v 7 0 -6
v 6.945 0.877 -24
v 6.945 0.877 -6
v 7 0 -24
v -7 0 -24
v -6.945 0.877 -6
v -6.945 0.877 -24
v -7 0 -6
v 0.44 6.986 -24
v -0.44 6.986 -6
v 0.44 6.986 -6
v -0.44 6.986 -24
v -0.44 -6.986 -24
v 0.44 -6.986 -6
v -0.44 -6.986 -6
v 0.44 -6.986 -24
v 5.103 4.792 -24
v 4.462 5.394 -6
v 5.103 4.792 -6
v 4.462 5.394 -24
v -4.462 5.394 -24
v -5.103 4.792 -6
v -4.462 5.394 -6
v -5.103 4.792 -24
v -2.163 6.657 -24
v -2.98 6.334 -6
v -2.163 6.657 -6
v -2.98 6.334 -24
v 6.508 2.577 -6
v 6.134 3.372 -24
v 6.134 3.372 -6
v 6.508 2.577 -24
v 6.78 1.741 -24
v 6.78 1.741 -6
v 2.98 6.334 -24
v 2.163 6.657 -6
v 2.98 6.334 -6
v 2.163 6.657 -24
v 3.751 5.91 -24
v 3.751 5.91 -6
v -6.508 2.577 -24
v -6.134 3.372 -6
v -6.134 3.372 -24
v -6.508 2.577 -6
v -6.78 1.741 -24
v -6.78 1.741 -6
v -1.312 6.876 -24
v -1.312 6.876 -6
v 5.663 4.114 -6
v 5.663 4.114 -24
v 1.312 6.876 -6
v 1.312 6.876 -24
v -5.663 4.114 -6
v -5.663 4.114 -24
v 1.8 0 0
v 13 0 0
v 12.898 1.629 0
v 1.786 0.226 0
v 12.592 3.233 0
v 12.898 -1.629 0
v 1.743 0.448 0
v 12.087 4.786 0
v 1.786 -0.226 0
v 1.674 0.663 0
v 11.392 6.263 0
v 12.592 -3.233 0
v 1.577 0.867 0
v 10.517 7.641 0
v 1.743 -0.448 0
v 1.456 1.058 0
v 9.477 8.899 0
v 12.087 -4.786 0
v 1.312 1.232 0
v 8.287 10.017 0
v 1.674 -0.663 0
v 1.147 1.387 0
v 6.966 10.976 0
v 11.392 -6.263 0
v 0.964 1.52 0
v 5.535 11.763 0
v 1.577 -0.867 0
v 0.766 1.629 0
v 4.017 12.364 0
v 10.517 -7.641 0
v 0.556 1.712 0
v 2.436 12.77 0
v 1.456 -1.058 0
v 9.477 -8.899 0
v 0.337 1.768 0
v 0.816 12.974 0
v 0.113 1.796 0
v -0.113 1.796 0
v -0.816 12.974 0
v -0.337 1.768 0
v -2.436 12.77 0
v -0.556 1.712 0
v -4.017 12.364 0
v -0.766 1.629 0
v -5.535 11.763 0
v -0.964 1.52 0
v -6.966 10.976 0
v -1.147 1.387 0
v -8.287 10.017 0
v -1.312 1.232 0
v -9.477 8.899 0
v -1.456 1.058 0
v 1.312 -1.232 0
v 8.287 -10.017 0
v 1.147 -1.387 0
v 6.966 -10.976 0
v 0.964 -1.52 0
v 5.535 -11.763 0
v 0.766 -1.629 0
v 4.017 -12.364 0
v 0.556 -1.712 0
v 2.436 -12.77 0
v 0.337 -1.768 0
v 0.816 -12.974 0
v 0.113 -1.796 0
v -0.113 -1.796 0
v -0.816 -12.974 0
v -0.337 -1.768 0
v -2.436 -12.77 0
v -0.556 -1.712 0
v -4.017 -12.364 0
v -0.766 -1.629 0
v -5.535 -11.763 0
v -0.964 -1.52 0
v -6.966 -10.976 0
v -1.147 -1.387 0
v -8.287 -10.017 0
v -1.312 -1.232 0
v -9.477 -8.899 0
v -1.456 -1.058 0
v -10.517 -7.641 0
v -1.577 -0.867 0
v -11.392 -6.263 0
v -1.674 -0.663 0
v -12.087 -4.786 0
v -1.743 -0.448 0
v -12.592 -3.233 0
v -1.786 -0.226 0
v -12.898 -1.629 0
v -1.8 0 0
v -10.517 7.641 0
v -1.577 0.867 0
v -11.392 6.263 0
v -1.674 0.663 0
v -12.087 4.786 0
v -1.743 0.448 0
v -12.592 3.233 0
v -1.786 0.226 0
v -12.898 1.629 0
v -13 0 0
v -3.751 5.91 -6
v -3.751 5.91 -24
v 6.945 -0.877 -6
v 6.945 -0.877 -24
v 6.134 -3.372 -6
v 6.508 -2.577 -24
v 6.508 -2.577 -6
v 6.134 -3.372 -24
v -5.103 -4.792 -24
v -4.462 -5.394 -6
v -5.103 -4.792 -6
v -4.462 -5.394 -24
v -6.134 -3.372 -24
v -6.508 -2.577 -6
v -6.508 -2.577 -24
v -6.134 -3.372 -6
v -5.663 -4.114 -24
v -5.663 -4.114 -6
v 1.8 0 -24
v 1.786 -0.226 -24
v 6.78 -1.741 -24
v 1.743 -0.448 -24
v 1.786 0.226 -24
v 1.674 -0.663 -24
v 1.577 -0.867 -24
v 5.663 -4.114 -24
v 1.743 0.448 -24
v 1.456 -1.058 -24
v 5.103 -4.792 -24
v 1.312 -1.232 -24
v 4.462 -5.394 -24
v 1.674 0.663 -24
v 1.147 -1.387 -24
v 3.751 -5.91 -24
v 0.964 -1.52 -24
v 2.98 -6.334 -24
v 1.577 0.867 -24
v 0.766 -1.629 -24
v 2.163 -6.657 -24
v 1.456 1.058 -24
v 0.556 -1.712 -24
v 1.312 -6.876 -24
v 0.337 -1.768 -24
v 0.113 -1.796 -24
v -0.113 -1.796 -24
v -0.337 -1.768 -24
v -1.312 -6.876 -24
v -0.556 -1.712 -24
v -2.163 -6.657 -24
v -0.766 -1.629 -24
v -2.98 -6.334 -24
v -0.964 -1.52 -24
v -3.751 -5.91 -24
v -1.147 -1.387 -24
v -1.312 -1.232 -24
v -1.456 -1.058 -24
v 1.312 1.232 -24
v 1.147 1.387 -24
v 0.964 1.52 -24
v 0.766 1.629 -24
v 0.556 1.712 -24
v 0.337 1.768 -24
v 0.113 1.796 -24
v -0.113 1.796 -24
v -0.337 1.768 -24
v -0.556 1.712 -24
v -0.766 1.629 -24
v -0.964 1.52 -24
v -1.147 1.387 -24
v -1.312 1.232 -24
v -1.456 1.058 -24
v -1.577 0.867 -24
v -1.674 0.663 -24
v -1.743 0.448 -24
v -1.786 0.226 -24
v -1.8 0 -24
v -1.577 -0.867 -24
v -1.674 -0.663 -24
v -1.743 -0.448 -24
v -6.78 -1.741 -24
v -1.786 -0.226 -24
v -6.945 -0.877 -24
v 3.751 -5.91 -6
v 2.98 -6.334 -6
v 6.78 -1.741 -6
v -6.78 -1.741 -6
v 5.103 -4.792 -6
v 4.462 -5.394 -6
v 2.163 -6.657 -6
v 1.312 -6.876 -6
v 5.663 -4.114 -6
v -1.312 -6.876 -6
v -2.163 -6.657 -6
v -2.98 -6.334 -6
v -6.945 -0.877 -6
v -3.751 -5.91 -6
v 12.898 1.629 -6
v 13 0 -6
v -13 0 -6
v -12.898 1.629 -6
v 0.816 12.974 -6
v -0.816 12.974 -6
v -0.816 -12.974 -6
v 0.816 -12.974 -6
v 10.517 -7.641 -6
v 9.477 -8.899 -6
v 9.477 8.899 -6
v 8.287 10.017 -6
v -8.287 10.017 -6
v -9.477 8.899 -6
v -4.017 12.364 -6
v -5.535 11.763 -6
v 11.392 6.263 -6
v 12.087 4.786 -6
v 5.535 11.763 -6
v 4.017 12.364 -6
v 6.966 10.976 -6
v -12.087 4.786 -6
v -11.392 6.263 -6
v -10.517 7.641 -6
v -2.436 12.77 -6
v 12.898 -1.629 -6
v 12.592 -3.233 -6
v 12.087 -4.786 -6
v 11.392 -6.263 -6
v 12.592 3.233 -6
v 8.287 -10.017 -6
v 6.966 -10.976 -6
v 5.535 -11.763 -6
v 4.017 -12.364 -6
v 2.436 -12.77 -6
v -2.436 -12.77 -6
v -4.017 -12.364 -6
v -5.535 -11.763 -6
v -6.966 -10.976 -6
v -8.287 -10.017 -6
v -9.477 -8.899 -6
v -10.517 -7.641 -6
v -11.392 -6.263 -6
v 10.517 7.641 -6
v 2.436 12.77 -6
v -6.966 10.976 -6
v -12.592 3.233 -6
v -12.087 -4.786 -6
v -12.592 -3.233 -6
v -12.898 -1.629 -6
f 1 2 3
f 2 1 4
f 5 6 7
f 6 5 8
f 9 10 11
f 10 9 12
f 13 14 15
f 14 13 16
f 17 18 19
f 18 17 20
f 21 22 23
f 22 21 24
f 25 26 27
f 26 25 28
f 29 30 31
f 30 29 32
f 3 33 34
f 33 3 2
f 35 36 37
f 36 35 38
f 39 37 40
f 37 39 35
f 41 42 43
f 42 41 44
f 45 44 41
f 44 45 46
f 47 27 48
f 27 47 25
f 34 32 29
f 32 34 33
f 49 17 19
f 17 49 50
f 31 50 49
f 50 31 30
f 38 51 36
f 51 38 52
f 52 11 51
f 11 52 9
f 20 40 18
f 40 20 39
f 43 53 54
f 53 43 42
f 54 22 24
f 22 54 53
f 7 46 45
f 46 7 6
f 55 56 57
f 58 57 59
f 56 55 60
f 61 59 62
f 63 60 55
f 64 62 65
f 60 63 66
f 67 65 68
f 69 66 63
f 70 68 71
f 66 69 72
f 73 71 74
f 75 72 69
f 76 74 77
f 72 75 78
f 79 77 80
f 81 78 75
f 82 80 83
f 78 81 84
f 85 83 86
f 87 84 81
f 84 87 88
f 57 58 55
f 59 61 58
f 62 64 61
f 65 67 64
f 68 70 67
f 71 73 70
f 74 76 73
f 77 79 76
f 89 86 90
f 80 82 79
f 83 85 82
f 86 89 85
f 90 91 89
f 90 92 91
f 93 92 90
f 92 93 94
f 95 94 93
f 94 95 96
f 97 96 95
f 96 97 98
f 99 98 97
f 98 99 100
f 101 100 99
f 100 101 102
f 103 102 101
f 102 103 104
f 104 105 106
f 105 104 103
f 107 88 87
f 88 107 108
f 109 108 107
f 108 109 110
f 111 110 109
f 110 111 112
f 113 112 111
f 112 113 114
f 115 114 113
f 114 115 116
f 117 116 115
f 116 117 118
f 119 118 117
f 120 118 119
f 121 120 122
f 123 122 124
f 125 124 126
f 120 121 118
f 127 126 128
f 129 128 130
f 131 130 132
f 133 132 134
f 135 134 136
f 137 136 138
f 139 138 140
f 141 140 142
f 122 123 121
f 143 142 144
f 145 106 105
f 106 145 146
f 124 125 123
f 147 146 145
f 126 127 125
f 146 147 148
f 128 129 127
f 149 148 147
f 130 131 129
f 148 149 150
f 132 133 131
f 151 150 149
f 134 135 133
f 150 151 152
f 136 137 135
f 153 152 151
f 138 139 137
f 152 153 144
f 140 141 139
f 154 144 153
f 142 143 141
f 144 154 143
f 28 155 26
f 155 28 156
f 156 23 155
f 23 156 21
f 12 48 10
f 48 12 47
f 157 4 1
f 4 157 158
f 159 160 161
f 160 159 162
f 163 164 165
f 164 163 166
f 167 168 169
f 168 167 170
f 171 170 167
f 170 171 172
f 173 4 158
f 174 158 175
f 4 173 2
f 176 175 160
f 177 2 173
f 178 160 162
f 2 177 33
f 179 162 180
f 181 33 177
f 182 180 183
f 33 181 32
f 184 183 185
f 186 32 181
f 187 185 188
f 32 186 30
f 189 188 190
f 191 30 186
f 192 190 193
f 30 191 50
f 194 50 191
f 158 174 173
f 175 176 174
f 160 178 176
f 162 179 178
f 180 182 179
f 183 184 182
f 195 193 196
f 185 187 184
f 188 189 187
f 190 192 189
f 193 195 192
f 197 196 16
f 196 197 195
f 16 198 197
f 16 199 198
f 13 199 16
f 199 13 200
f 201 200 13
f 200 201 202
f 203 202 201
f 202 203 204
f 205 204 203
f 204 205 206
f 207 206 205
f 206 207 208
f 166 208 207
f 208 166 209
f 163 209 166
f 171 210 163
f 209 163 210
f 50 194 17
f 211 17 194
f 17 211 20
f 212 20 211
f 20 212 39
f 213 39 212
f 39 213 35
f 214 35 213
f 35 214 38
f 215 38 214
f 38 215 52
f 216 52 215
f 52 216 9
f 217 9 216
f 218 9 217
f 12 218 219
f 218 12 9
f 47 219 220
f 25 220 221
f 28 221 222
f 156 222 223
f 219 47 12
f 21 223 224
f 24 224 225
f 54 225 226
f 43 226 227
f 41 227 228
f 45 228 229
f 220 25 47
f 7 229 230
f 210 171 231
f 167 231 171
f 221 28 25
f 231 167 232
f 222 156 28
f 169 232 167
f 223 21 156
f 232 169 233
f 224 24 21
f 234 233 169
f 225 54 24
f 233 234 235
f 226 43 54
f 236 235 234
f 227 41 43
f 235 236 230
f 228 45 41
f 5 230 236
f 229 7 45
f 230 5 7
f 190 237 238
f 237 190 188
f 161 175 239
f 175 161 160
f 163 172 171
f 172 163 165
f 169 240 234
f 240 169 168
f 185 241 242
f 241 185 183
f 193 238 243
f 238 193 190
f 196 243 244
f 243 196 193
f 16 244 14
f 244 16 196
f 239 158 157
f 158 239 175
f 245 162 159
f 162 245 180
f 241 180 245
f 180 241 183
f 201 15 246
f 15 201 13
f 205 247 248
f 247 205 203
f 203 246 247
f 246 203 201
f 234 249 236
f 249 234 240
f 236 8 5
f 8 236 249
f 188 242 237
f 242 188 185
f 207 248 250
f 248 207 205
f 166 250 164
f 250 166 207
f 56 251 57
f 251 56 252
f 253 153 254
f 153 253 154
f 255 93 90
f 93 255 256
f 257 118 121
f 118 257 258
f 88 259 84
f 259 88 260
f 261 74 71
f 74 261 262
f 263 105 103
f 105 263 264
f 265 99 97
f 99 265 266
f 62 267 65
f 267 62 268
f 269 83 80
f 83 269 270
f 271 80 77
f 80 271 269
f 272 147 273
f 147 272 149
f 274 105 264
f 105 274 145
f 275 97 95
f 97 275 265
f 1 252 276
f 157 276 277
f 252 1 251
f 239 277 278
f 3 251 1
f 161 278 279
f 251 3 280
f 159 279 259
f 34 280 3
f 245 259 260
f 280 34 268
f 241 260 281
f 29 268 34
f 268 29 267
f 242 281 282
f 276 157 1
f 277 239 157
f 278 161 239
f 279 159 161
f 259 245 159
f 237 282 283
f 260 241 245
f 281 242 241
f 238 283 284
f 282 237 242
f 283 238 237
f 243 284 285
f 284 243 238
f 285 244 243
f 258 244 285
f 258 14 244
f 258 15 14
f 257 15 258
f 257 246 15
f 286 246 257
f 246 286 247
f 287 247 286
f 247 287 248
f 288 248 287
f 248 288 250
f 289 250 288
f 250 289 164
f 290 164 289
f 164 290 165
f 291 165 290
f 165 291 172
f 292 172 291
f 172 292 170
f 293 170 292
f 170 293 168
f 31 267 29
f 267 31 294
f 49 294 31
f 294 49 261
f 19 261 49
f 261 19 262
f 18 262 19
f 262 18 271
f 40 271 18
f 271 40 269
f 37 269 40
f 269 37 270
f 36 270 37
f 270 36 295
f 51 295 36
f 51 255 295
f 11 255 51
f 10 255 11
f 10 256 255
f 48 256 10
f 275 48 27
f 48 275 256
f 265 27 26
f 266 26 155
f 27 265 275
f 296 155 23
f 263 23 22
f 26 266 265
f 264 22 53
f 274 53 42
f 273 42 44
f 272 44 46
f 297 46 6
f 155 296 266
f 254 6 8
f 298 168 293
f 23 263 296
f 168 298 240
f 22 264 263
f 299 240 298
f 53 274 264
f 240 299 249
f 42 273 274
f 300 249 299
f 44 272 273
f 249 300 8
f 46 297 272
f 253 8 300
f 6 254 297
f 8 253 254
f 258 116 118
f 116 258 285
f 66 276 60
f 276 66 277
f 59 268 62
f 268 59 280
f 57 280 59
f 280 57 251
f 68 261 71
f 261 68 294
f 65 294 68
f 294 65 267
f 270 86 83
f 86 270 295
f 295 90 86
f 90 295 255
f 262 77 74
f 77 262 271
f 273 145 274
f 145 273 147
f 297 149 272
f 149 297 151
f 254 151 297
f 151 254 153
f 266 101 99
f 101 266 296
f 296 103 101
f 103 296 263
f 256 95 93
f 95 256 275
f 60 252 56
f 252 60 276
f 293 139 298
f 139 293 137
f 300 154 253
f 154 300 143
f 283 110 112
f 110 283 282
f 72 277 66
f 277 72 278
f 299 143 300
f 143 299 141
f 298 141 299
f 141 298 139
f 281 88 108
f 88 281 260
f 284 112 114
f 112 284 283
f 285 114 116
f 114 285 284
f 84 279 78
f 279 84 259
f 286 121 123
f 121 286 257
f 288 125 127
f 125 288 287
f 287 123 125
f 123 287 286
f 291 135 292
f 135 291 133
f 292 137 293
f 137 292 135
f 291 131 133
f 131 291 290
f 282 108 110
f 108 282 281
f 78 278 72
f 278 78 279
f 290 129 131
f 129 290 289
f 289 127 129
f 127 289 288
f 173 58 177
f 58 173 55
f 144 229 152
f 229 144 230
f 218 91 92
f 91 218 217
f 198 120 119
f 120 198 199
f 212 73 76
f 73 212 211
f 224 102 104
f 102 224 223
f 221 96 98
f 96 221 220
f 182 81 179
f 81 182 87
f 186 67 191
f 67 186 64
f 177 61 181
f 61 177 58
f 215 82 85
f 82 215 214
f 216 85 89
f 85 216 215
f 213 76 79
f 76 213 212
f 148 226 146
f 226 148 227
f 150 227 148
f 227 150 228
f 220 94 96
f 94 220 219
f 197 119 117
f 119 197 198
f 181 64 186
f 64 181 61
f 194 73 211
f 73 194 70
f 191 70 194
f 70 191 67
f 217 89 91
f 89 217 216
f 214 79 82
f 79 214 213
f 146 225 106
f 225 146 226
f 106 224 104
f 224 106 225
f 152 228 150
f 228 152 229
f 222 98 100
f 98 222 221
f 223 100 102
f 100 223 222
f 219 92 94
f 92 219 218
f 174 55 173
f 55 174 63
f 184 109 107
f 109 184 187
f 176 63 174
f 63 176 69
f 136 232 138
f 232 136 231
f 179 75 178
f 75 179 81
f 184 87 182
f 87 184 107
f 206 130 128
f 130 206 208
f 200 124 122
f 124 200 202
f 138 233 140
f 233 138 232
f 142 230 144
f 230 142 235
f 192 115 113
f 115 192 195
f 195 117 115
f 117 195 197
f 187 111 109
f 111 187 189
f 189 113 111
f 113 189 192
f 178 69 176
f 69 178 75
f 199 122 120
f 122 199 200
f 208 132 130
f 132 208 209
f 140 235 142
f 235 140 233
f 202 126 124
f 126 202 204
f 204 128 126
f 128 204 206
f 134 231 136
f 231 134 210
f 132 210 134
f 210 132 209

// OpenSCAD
$fn = 50;


difference() {
	union() {
		translate(v = [0, 0, -24.0000000000]) {
			cylinder(h = 24, r = 7.0000000000);
		}
		translate(v = [0, 0, -6.0000000000]) {
			cylinder(h = 6, r = 13.0000000000);
		}
	}
	union() {
		#translate(v = [0, 0, -24]) {
			cylinder(h = 24, r = 1.8000000000);
		}
	}
}
